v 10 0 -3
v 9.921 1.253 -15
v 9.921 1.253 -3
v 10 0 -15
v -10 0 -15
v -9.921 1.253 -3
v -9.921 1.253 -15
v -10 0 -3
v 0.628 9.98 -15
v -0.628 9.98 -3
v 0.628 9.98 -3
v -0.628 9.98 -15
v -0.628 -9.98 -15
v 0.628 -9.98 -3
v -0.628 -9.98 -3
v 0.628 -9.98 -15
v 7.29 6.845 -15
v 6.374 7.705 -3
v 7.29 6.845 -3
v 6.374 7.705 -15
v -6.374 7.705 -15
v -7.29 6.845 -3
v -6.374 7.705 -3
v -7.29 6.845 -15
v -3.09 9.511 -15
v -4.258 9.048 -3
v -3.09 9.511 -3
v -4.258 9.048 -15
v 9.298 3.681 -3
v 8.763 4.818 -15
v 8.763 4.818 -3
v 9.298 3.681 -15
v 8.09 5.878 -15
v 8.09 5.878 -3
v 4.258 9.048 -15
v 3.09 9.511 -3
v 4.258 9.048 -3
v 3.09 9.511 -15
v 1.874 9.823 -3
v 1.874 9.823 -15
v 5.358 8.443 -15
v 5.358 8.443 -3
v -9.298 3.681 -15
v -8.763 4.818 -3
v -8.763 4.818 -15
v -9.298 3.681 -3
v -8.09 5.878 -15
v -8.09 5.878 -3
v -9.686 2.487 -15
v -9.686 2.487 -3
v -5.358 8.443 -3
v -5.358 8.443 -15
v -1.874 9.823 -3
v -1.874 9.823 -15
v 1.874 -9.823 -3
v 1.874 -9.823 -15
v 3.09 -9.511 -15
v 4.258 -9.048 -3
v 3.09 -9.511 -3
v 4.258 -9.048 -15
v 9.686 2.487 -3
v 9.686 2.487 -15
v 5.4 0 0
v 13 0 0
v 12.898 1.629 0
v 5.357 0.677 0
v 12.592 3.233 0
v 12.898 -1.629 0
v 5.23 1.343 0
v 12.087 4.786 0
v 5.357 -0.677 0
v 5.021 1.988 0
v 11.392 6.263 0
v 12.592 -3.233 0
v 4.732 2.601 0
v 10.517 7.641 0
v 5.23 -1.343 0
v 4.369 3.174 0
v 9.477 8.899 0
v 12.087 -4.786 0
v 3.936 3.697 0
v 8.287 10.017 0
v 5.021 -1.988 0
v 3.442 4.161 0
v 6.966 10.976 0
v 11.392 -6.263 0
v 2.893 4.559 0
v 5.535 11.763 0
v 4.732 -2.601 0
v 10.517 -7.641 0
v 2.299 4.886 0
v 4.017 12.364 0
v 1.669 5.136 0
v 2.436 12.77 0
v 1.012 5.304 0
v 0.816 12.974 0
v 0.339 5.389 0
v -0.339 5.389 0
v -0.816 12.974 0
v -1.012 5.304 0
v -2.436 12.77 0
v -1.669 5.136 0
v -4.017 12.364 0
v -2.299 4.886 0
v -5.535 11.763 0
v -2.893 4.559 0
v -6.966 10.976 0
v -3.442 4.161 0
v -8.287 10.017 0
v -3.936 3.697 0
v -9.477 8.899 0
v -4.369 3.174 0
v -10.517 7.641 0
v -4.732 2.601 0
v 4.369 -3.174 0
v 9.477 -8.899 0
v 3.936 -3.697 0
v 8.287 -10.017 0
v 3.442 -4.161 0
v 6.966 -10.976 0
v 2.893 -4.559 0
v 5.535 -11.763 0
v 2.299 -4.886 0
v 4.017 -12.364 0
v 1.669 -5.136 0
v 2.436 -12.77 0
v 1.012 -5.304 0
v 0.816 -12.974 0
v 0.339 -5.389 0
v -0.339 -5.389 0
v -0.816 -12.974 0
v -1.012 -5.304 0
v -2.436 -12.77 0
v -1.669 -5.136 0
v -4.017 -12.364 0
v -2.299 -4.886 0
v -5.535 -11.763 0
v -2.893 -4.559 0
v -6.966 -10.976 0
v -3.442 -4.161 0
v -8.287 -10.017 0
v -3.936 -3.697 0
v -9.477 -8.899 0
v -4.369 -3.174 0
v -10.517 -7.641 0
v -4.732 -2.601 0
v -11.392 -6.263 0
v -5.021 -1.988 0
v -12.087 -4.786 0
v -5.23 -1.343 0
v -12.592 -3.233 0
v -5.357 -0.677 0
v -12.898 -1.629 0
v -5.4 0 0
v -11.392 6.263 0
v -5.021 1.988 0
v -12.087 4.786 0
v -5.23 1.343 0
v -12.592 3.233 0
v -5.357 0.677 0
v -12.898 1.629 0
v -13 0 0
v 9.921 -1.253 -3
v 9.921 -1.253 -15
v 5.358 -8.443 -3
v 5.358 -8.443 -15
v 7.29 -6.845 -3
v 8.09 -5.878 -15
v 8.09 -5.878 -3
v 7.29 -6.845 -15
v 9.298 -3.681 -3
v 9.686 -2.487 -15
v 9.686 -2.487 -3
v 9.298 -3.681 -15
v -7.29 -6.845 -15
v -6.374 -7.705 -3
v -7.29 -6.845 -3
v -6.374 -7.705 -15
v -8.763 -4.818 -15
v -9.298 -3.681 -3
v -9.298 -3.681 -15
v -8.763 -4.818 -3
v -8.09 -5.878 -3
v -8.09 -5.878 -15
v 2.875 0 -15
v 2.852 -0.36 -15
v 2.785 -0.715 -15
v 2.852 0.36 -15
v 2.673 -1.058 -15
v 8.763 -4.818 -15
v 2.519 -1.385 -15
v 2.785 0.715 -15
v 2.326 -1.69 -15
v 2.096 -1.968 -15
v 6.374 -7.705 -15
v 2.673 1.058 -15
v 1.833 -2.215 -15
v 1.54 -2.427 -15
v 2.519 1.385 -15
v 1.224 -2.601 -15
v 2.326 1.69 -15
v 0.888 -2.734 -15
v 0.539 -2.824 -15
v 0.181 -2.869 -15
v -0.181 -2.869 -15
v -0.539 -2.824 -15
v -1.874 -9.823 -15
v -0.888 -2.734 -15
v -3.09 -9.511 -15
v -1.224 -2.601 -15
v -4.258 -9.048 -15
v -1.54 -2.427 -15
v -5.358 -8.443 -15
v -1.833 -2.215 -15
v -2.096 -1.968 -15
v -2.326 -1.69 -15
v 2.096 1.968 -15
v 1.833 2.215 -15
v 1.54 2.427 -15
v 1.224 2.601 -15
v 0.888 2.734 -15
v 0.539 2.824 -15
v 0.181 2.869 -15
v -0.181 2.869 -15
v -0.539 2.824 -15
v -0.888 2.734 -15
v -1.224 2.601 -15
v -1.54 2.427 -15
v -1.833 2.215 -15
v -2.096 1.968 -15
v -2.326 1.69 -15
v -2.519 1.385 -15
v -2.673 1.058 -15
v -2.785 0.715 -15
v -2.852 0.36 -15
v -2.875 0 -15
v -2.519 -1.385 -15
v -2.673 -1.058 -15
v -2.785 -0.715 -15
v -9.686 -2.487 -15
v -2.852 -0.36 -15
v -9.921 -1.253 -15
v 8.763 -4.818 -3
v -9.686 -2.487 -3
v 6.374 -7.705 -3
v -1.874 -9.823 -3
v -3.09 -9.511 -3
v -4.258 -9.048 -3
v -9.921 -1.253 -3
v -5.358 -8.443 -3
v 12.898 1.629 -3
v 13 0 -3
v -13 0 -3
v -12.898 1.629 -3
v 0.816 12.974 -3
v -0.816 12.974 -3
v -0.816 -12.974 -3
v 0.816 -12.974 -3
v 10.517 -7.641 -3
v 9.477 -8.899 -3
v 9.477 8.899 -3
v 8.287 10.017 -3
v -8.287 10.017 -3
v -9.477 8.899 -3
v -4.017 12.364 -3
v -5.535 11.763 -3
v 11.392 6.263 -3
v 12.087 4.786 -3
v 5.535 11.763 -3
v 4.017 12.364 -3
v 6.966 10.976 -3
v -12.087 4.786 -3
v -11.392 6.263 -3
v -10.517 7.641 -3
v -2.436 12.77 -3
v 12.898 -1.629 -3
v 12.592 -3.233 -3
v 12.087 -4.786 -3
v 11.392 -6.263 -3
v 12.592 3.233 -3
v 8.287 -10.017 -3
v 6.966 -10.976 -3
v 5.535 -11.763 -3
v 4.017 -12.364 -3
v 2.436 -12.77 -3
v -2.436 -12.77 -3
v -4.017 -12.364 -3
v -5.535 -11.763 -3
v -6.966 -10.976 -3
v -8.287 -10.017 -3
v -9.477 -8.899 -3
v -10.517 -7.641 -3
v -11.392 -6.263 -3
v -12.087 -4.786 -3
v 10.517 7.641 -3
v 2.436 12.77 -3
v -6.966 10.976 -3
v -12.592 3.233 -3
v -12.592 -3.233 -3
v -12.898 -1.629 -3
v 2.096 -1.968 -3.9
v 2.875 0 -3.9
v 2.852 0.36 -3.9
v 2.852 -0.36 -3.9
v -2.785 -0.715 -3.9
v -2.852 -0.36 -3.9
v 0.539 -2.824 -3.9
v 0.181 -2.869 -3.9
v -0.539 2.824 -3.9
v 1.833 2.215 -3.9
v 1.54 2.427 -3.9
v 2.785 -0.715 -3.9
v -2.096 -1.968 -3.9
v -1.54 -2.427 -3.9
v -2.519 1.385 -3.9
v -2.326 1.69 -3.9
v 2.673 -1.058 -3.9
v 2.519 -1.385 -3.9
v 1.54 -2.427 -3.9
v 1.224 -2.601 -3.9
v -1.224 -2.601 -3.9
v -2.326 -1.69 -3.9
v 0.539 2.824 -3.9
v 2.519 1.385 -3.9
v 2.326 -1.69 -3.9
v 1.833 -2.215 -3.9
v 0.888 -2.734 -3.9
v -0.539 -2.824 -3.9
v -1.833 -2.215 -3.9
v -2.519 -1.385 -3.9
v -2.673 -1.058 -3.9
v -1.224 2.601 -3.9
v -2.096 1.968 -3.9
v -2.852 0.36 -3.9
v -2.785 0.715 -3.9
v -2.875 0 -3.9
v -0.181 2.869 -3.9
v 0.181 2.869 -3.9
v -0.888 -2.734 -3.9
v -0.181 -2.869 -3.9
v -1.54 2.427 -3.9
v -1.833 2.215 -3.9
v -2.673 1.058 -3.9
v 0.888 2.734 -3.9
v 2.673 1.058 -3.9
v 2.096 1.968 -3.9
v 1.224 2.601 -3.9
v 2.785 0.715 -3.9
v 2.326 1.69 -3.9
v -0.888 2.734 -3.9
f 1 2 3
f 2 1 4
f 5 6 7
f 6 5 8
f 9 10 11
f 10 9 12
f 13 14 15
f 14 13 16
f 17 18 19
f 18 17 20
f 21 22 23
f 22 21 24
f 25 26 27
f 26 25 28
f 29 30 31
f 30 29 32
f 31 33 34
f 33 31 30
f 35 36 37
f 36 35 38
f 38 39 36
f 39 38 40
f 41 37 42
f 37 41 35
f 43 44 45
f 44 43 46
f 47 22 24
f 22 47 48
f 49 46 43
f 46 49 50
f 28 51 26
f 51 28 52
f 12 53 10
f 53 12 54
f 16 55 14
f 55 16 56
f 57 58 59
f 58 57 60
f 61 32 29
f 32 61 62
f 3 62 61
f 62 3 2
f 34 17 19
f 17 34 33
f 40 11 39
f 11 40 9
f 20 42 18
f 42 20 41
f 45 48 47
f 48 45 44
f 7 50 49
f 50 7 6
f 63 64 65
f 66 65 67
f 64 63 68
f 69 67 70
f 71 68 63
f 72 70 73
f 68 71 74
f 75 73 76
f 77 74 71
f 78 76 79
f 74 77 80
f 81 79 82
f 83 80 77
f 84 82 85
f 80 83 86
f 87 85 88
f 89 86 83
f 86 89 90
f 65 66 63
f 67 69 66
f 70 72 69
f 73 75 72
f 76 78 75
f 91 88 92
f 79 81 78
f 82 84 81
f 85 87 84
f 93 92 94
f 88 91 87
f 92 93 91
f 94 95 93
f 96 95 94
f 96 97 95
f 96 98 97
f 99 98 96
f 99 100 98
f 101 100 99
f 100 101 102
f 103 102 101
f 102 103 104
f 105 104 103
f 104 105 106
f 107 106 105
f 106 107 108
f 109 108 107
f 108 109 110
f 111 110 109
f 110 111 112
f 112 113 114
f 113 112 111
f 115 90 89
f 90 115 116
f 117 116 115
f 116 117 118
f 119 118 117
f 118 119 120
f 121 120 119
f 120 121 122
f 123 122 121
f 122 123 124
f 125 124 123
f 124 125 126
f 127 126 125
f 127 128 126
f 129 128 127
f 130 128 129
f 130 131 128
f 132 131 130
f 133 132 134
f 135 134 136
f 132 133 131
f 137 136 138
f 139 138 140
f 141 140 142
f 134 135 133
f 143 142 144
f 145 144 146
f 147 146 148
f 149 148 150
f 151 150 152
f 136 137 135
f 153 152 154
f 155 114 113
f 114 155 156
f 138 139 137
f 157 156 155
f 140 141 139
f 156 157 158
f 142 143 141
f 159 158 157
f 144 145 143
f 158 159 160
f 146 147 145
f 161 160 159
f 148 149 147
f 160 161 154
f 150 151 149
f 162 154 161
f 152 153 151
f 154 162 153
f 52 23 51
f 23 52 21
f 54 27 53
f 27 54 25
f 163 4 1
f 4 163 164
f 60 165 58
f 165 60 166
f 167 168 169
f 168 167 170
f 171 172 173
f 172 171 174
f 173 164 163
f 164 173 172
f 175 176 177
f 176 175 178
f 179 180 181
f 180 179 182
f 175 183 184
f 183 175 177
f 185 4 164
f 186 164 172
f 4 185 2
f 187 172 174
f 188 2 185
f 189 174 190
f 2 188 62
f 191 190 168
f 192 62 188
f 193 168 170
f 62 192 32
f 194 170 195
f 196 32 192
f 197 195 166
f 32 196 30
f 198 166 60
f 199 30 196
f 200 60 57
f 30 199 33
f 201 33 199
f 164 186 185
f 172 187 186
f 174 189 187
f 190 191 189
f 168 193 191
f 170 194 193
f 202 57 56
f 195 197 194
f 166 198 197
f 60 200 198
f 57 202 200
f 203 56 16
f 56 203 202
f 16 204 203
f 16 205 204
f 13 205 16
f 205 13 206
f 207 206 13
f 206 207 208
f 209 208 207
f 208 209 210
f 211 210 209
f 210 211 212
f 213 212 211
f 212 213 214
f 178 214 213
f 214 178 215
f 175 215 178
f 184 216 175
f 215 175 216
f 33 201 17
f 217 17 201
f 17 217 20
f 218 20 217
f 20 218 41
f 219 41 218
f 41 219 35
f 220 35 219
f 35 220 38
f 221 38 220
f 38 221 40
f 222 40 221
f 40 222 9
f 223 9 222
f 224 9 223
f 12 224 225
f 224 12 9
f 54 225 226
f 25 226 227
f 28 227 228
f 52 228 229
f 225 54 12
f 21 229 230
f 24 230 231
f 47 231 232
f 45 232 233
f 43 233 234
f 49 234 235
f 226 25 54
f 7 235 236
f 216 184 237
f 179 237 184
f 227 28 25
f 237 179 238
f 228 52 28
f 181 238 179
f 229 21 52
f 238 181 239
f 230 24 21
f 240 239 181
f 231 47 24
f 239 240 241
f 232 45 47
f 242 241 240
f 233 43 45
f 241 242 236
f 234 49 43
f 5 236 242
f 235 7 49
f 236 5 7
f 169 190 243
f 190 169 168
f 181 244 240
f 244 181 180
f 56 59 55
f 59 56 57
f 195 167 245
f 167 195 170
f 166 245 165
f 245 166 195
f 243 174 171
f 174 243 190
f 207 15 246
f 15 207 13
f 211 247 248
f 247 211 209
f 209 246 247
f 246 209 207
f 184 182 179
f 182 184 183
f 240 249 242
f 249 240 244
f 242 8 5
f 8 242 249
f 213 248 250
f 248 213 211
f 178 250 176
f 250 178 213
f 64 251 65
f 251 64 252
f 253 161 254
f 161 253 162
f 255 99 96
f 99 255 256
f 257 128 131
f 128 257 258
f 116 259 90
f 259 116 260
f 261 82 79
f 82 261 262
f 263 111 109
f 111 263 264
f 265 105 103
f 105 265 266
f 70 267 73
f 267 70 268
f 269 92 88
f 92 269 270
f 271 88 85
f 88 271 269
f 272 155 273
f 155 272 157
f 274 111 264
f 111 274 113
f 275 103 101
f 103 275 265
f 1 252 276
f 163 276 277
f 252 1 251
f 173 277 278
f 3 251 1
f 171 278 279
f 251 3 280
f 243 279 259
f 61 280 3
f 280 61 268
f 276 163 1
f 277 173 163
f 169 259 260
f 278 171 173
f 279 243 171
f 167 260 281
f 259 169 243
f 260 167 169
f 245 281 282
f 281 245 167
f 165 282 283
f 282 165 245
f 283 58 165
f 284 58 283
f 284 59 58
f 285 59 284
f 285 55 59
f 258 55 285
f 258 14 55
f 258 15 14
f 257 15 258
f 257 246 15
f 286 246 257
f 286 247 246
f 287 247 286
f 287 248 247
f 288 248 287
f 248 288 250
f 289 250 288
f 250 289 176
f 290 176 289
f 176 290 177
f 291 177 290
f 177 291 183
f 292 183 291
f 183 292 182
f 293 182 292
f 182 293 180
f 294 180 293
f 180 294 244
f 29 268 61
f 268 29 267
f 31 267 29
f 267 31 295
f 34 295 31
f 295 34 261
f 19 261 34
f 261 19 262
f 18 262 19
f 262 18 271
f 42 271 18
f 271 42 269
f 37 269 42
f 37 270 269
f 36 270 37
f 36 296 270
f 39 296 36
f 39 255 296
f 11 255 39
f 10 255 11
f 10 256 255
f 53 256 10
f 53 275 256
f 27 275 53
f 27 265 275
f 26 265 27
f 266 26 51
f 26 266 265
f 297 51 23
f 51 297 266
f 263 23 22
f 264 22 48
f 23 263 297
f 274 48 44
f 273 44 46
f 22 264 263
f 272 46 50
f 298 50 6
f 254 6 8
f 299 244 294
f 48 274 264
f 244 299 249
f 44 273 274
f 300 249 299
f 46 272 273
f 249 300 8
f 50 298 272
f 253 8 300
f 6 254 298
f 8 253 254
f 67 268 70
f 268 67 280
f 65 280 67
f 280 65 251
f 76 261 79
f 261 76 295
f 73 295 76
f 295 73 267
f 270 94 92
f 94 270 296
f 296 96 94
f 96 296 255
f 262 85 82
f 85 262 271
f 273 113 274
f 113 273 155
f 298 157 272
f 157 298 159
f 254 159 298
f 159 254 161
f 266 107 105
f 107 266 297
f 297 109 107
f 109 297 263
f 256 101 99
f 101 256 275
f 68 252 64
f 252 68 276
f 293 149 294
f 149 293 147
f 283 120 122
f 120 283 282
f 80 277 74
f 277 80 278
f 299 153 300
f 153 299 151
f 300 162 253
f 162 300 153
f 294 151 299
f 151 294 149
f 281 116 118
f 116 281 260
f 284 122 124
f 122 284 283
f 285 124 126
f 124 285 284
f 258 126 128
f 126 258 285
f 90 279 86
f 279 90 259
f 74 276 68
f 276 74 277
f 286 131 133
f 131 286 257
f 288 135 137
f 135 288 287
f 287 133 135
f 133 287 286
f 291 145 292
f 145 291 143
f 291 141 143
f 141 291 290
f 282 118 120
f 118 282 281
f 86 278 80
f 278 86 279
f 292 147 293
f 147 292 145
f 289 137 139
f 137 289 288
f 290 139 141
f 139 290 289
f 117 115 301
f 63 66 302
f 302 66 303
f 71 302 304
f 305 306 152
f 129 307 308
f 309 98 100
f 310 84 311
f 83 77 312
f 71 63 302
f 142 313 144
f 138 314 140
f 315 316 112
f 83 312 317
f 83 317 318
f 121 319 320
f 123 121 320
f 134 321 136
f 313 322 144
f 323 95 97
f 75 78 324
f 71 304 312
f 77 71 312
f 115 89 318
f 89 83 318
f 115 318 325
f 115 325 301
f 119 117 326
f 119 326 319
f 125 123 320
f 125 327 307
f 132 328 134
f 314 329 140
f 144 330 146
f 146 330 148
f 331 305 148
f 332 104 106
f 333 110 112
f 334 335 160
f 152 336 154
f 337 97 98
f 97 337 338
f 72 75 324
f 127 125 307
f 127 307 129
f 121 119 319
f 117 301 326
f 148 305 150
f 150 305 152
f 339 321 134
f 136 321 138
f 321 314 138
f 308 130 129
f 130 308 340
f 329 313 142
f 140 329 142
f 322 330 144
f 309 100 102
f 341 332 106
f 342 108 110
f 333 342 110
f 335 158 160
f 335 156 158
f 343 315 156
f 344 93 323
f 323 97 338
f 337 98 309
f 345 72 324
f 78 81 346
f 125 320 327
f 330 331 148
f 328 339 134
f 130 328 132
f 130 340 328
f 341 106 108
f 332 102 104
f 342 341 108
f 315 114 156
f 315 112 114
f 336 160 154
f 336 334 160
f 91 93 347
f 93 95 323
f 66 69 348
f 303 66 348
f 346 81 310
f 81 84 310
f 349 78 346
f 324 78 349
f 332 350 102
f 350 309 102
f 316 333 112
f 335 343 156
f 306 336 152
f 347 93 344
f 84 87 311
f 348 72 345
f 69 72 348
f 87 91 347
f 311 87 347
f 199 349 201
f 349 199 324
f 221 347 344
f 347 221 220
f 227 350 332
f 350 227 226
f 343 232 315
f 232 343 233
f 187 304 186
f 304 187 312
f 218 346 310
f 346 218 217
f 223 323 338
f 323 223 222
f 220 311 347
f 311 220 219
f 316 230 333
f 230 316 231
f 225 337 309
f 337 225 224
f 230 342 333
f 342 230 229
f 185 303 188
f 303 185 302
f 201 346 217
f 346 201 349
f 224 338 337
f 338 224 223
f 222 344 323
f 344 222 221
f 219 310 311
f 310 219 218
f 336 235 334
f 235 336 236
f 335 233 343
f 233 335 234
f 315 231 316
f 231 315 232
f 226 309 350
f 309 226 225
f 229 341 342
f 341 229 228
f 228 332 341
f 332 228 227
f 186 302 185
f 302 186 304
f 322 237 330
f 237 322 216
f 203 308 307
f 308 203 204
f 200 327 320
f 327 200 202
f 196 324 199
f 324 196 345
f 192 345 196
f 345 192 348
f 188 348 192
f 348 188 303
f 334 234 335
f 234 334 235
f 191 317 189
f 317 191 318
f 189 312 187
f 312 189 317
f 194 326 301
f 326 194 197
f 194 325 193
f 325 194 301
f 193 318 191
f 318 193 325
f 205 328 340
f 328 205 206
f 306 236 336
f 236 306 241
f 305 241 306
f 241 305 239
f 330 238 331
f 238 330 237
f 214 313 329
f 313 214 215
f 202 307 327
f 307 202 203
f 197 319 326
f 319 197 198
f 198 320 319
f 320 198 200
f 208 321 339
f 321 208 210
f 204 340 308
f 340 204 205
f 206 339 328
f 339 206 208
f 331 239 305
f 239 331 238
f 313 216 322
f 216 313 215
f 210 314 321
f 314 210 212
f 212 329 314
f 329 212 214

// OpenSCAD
$fn = 50;


difference() {
	union() {
		translate(v = [0, 0, -15.0000000000]) {
			cylinder(h = 15, r = 10.0000000000);
		}
		translate(v = [0, 0, -3.0000000000]) {
			cylinder(h = 3, r = 13.0000000000);
		}
	}
	union() {
		translate(v = [0, 0, 0]) {
			rotate(a = [0, 0, 0]) {
				difference() {
					union() {
						#translate(v = [0, 0, -15.0000000000]) {
							cylinder(h = 15, r = 2.6000000000);
						}
						#translate(v = [0, 0, -3.9000000000]) {
							cylinder(h = 3.9000000000, r1 = 2.8750000000, r2 = 5.4000000000);
						}
						#translate(v = [0, 0, -15.0000000000]) {
							cylinder(h = 15, r = 2.8750000000);
						}
						#translate(v = [0, 0, -15.0000000000]) {
							cylinder(h = 15, r = 2.6000000000);
						}
					}
					union();
				}
			}
		}
	}
}
